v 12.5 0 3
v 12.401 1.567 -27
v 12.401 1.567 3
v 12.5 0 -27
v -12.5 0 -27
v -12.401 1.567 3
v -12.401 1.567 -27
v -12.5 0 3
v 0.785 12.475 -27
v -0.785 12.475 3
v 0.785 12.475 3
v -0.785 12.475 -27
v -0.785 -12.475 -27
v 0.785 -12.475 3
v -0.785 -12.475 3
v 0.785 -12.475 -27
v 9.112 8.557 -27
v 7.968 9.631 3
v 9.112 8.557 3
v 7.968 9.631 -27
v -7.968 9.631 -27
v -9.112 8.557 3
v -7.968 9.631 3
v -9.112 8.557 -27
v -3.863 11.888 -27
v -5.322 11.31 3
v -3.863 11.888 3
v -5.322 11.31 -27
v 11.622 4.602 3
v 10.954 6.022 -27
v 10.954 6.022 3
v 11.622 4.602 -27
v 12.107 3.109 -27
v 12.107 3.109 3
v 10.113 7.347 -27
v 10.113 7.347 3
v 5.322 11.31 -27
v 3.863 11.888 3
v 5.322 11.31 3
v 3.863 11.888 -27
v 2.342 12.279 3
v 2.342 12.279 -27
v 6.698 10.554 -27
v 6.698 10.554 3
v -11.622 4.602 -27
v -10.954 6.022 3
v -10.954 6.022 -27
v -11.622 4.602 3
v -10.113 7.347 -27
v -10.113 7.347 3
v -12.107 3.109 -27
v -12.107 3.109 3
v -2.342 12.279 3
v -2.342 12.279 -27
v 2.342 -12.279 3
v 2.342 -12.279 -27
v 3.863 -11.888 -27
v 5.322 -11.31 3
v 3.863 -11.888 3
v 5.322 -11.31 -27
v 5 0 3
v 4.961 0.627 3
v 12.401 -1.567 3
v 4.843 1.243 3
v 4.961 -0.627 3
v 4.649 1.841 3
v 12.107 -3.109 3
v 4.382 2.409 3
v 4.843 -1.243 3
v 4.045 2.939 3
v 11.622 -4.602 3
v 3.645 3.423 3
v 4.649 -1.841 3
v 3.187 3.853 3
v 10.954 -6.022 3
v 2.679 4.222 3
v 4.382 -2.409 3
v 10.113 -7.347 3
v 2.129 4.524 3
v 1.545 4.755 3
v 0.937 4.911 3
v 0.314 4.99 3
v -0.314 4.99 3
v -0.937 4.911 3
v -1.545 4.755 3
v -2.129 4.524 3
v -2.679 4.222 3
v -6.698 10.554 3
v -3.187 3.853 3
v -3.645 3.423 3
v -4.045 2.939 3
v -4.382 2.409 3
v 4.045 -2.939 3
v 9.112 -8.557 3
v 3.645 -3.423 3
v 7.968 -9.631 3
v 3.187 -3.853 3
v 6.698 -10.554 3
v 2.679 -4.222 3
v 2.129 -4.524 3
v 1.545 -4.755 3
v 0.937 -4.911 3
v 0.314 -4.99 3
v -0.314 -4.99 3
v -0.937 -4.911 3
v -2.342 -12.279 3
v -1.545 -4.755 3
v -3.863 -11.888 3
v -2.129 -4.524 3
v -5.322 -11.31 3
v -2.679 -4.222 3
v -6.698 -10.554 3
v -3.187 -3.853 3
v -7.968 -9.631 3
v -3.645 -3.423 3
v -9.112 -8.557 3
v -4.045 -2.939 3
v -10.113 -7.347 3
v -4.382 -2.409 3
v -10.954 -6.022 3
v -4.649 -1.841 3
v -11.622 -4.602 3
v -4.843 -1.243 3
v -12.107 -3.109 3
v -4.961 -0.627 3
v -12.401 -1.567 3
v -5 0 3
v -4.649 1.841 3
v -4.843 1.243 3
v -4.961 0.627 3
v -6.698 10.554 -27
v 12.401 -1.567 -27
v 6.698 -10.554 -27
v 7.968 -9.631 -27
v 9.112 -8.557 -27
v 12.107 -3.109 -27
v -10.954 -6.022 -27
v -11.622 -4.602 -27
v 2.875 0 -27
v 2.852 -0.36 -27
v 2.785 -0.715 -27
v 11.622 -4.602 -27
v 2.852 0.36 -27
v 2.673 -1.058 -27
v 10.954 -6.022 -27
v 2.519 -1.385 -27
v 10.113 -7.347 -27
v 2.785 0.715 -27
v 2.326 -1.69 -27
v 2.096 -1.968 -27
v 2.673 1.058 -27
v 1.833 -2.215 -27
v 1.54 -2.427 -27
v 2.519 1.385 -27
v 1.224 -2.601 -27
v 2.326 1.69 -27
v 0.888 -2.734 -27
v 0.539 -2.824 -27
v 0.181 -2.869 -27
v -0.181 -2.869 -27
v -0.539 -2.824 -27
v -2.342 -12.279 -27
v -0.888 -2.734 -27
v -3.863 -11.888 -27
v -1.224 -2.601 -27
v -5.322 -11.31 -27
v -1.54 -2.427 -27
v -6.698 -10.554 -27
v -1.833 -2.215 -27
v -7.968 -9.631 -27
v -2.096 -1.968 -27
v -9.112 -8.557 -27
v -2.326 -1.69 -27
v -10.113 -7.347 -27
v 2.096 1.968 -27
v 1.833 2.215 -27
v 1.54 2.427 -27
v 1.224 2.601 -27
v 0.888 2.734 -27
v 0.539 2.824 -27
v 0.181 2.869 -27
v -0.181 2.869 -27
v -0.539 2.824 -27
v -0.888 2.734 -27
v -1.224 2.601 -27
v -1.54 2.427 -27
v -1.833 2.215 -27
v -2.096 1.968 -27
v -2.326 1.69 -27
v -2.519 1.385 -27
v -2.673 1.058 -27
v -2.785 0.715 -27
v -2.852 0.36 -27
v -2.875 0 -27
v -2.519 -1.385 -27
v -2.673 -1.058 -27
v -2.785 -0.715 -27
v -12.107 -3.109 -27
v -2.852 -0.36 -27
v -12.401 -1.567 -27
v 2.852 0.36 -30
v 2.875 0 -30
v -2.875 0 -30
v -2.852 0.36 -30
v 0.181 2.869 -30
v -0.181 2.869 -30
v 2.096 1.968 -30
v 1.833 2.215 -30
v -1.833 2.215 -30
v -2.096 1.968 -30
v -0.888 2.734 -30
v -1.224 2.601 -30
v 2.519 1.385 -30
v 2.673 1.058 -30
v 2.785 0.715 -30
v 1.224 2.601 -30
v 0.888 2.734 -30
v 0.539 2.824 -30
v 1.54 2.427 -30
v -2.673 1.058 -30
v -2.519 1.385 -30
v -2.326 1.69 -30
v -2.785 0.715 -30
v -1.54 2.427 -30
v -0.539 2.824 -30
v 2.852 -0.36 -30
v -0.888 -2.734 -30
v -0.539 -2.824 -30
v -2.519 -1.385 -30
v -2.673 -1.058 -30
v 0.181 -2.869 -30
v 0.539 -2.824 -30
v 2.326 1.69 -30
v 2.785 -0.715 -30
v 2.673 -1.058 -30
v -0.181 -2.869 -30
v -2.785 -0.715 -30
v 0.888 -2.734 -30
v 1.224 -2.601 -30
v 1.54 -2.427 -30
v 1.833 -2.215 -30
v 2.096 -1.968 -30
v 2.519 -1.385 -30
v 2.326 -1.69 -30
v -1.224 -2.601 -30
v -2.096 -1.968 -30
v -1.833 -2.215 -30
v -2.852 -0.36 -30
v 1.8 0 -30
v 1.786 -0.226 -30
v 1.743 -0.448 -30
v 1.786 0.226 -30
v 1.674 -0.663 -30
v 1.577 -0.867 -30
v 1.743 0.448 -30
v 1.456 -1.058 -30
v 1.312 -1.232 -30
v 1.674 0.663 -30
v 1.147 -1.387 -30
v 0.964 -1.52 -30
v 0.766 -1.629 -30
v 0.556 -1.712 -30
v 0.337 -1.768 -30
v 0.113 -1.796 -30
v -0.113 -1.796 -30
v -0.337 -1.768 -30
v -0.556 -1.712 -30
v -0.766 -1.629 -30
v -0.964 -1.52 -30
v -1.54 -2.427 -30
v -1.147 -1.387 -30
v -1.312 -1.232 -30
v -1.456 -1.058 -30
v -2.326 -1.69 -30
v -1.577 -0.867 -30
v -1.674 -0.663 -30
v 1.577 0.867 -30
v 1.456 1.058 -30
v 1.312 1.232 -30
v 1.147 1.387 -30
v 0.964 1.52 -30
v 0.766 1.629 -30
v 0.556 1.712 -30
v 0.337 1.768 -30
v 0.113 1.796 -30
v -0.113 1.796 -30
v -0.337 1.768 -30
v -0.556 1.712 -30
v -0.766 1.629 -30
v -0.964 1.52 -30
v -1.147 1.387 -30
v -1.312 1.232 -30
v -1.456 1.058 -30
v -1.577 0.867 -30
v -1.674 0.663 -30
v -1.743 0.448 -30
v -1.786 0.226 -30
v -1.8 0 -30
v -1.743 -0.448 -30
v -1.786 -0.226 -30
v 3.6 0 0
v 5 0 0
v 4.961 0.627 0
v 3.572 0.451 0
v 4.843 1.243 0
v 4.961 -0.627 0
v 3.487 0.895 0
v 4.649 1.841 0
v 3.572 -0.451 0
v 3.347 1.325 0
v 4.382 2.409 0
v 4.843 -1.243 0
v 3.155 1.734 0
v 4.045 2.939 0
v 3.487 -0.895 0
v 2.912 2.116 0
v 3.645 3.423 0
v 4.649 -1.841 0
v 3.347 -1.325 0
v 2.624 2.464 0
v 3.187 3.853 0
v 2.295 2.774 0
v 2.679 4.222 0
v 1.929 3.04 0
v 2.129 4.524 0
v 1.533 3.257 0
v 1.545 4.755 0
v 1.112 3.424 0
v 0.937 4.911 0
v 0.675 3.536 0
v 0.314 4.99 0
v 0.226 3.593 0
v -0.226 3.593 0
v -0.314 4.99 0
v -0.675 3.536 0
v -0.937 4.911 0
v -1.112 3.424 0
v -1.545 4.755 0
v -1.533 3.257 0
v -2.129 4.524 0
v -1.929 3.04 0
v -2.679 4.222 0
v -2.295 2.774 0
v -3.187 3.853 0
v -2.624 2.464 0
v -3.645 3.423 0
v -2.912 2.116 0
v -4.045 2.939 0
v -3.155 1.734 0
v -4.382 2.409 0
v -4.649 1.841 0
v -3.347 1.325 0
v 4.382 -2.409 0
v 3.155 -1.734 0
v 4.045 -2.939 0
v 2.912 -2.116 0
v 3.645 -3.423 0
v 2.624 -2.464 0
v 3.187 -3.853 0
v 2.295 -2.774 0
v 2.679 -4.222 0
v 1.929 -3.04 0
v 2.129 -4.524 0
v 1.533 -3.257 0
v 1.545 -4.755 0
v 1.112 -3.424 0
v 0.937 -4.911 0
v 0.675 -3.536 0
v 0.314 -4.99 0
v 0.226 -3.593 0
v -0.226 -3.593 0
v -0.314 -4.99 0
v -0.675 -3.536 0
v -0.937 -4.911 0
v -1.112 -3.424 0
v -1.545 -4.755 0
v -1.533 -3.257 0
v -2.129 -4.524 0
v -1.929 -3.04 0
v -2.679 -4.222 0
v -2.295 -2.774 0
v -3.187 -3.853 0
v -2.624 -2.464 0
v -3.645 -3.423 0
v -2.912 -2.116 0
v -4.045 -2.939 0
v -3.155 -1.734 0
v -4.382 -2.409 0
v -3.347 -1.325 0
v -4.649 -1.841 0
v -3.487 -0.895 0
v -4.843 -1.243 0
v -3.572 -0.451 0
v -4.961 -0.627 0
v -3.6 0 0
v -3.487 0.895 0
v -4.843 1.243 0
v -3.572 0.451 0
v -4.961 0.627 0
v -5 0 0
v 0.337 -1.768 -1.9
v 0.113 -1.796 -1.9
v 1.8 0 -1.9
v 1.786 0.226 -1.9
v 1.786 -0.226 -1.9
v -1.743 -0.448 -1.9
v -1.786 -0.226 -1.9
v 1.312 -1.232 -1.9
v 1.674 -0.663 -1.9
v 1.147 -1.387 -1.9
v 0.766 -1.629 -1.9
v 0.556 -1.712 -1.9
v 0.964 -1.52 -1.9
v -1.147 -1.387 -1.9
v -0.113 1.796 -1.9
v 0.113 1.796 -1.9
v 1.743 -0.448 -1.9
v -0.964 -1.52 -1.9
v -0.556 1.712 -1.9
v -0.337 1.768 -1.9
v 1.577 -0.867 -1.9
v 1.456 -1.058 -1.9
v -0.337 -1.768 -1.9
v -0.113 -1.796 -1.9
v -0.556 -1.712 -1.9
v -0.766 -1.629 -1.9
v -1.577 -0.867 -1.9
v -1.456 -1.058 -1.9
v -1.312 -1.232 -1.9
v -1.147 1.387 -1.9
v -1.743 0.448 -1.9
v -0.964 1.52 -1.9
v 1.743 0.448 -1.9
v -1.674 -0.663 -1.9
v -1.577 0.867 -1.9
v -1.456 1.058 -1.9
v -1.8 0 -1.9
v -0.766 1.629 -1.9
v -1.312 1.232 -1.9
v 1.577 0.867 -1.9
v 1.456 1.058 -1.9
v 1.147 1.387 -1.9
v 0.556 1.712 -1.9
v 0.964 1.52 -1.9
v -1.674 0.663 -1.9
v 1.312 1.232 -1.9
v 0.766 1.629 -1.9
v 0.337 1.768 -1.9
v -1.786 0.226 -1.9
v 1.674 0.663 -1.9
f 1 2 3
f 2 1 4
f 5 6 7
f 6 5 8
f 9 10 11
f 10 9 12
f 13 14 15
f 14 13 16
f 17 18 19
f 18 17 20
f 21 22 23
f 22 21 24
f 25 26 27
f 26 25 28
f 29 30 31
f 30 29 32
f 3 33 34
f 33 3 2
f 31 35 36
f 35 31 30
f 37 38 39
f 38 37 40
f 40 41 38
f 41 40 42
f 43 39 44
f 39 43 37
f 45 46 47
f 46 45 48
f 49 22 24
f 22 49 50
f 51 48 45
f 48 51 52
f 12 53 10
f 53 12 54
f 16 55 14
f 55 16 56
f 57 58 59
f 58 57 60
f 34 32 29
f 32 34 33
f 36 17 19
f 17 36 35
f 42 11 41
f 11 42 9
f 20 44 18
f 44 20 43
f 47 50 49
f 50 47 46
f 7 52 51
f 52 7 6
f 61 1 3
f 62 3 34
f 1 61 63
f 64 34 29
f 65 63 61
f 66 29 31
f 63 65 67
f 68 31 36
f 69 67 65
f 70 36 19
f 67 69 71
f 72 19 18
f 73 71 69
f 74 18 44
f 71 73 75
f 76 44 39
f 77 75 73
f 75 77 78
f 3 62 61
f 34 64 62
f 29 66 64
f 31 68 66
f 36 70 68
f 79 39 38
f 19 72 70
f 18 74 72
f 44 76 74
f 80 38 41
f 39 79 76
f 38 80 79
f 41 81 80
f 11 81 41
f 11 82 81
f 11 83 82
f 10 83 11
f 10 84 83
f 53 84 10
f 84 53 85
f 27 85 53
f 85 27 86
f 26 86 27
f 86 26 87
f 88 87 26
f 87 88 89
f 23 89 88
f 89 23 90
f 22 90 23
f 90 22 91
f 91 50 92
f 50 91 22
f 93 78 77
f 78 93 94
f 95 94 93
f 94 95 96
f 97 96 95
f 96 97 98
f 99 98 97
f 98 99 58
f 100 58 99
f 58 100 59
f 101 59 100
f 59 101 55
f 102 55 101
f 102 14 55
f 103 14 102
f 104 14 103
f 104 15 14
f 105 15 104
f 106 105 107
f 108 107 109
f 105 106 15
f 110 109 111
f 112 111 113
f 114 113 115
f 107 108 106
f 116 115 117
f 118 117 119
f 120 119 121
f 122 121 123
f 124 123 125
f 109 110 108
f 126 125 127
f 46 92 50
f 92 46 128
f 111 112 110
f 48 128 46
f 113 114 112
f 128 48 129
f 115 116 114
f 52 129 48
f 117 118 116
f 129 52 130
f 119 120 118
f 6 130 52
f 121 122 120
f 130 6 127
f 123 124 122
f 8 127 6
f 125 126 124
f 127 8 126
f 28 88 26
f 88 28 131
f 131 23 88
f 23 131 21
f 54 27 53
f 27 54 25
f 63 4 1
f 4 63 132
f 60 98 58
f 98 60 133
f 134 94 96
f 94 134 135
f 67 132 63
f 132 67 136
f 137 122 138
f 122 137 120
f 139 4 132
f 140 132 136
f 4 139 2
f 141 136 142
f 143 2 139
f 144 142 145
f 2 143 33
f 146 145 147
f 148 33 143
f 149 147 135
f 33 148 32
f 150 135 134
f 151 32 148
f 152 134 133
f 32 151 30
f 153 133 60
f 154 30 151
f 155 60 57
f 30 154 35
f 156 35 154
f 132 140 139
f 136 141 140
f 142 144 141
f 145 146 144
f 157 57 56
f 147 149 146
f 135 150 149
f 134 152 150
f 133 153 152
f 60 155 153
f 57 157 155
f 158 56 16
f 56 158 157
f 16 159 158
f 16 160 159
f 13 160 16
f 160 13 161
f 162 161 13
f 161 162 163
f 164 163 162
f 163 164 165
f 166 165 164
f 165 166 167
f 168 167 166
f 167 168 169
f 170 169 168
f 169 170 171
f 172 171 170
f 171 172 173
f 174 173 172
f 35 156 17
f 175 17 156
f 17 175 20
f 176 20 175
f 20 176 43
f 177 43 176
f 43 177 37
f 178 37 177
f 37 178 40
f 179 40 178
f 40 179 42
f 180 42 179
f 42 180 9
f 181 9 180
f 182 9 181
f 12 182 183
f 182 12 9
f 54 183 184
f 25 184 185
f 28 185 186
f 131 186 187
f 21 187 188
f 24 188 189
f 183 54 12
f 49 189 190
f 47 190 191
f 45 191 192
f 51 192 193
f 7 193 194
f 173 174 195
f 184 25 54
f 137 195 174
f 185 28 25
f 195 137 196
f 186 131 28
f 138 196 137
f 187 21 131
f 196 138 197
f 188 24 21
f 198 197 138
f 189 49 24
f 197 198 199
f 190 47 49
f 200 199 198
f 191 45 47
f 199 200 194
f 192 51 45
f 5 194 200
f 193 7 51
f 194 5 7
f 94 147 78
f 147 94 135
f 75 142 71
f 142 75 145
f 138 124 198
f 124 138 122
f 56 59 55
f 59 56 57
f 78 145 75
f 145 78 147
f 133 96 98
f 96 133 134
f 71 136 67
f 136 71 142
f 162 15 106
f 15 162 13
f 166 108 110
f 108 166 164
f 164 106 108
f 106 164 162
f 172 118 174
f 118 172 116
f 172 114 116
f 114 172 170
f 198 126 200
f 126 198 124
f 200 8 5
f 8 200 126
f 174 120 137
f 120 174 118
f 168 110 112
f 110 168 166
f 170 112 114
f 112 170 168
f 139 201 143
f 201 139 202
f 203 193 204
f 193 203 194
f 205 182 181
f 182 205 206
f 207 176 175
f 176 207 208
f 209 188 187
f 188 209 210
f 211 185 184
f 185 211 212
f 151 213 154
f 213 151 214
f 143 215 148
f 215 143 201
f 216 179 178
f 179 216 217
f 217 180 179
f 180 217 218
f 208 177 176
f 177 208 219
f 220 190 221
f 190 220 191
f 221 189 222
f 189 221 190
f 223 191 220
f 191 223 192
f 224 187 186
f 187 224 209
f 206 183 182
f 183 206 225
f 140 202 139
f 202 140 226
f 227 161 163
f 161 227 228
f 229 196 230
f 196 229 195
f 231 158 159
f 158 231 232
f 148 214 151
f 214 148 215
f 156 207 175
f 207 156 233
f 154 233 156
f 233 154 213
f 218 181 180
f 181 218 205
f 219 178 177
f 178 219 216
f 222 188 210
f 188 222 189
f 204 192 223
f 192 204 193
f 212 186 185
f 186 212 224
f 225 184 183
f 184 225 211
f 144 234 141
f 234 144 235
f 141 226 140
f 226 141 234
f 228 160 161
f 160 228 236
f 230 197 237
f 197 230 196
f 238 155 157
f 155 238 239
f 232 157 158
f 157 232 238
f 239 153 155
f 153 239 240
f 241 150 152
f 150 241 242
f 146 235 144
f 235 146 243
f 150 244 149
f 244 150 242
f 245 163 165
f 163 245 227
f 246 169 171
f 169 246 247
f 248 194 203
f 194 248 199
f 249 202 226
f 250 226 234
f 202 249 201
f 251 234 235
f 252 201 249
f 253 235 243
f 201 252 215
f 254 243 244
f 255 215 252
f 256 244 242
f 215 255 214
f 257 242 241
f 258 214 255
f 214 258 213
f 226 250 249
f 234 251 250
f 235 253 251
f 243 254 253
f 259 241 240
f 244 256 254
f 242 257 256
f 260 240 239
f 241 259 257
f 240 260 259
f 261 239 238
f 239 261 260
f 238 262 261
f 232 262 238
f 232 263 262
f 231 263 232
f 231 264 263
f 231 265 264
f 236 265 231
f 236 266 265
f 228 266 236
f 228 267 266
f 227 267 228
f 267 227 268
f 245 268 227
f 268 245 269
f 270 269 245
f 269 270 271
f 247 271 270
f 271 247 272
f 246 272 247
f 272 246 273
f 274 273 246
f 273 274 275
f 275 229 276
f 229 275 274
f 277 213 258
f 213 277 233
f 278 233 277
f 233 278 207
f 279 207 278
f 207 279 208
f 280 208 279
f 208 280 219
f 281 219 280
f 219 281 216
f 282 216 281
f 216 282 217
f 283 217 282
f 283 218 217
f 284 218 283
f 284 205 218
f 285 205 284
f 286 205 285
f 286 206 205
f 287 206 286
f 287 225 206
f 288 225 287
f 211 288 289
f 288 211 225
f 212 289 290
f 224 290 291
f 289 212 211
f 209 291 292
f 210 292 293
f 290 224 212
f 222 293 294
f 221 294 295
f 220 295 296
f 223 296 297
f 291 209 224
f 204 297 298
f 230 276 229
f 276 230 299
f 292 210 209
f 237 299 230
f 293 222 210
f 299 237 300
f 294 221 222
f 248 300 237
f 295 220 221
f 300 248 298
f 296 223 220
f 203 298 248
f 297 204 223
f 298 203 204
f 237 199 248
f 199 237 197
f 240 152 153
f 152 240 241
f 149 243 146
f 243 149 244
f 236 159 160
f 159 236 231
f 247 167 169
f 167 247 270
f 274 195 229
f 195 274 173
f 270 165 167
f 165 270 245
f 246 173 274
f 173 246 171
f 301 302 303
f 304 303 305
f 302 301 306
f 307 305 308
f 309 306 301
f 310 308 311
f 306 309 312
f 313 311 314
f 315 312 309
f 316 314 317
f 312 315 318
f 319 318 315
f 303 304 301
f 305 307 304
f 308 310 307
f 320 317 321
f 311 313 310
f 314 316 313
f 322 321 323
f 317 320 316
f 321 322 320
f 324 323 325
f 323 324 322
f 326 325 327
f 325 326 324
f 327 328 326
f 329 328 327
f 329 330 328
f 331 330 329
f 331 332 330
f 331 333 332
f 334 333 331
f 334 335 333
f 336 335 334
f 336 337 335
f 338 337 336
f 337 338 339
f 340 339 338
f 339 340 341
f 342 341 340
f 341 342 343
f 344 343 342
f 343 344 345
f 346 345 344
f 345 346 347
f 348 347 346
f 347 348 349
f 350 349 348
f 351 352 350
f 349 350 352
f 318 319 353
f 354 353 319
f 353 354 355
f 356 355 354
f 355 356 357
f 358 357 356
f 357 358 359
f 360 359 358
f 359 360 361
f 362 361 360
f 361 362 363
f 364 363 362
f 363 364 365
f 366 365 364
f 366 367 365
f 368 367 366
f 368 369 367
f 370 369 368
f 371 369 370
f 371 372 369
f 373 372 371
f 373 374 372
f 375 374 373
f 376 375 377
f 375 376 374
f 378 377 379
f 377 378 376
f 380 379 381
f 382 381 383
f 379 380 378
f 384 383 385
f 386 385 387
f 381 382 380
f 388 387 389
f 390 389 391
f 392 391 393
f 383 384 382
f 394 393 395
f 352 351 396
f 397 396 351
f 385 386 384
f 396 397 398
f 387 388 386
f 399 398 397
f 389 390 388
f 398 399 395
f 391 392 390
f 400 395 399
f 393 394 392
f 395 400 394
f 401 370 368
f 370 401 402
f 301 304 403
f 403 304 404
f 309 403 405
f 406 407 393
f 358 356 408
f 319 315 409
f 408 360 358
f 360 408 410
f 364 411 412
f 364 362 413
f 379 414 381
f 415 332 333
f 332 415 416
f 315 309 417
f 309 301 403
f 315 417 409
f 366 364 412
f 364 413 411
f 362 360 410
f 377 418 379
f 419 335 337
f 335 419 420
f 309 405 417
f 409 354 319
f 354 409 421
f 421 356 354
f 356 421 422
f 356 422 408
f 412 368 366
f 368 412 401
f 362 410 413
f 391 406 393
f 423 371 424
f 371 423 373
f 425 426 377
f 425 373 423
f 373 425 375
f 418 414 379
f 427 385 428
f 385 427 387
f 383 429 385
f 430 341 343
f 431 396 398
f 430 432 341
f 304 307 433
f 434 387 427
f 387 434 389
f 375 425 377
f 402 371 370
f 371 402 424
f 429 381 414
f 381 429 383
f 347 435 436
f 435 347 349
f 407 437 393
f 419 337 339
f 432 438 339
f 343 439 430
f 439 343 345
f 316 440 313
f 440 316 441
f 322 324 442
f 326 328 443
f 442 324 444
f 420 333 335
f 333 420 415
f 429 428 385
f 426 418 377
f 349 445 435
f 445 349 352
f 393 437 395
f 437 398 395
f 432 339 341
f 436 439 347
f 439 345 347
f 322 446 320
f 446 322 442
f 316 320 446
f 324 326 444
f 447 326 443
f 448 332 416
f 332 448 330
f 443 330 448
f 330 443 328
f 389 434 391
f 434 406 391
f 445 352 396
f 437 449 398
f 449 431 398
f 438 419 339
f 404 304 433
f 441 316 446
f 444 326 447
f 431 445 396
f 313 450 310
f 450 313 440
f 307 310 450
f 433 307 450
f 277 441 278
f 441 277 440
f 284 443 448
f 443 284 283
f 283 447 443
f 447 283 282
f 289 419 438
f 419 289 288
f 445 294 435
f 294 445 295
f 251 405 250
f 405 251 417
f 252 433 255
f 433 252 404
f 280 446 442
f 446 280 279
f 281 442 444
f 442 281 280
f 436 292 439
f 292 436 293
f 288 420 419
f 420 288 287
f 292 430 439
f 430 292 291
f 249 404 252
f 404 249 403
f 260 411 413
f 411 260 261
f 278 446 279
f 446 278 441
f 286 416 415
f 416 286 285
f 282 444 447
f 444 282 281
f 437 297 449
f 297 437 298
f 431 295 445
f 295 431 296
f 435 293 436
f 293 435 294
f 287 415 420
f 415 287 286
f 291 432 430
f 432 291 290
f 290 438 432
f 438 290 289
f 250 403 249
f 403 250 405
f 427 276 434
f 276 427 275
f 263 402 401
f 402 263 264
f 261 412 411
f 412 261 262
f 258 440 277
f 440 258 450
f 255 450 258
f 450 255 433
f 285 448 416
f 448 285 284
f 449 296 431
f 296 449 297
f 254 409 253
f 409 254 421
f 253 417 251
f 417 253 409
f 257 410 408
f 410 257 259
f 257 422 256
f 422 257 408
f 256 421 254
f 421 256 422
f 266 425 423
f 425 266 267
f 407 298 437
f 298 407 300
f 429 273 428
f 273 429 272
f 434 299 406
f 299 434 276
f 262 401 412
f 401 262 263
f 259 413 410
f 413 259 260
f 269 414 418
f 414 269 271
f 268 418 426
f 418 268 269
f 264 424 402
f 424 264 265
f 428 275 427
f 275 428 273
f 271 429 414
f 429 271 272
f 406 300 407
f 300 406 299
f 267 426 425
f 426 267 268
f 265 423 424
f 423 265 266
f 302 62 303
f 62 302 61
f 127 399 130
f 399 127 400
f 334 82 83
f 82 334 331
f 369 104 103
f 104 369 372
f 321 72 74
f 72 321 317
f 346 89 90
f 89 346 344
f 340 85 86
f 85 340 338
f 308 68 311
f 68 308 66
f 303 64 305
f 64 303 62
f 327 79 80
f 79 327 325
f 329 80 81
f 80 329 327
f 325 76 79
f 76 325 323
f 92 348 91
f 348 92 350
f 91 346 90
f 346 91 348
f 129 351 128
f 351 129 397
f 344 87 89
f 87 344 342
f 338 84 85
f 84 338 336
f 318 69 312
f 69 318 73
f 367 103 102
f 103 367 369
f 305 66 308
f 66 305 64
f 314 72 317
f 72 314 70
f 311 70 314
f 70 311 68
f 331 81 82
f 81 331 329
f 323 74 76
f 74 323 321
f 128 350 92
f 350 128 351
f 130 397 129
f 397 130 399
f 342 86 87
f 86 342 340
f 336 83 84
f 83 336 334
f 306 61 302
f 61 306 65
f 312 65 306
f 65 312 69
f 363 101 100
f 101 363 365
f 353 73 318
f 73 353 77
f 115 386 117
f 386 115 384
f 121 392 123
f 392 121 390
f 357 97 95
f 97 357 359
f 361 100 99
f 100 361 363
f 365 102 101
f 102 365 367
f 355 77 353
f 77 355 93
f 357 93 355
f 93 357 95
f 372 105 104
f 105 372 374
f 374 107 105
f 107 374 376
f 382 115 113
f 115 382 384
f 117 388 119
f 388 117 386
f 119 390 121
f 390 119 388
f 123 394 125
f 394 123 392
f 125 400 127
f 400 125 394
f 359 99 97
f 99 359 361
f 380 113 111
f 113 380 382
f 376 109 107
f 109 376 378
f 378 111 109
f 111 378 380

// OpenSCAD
$fn = 50;

difference() {
	union() {
		translate(v = [0, 0, -27.0]) {
			cylinder(h = 30, r = 12.5);
		}
		#translate(v = [0, 0, -30.0]) {
			cylinder(h = 30, r = 2.875);
		}
	}
	union() {
		translate(v = [0, 0, 0]) {
			rotate(a = [0, 0, 0]) {
				difference() {
					union() {
						translate(v = [0, 0, -30.0]) {
							cylinder(h = 30, r = 1.5);
						}
						translate(v = [0, 0, -1.9]) {
							cylinder(h = 1.9, r1 = 1.8, r2 = 3.6);
						}
						translate(v = [0, 0, -30.0]) {
							cylinder(h = 30, r = 1.8);
						}
						translate(v = [0, 0, -30.0]) {
							cylinder(h = 30, r = 1.5);
						}
					}
					union();
				}
			}
		}
		#cylinder(h = 3, r = 5.0);
	}
}
